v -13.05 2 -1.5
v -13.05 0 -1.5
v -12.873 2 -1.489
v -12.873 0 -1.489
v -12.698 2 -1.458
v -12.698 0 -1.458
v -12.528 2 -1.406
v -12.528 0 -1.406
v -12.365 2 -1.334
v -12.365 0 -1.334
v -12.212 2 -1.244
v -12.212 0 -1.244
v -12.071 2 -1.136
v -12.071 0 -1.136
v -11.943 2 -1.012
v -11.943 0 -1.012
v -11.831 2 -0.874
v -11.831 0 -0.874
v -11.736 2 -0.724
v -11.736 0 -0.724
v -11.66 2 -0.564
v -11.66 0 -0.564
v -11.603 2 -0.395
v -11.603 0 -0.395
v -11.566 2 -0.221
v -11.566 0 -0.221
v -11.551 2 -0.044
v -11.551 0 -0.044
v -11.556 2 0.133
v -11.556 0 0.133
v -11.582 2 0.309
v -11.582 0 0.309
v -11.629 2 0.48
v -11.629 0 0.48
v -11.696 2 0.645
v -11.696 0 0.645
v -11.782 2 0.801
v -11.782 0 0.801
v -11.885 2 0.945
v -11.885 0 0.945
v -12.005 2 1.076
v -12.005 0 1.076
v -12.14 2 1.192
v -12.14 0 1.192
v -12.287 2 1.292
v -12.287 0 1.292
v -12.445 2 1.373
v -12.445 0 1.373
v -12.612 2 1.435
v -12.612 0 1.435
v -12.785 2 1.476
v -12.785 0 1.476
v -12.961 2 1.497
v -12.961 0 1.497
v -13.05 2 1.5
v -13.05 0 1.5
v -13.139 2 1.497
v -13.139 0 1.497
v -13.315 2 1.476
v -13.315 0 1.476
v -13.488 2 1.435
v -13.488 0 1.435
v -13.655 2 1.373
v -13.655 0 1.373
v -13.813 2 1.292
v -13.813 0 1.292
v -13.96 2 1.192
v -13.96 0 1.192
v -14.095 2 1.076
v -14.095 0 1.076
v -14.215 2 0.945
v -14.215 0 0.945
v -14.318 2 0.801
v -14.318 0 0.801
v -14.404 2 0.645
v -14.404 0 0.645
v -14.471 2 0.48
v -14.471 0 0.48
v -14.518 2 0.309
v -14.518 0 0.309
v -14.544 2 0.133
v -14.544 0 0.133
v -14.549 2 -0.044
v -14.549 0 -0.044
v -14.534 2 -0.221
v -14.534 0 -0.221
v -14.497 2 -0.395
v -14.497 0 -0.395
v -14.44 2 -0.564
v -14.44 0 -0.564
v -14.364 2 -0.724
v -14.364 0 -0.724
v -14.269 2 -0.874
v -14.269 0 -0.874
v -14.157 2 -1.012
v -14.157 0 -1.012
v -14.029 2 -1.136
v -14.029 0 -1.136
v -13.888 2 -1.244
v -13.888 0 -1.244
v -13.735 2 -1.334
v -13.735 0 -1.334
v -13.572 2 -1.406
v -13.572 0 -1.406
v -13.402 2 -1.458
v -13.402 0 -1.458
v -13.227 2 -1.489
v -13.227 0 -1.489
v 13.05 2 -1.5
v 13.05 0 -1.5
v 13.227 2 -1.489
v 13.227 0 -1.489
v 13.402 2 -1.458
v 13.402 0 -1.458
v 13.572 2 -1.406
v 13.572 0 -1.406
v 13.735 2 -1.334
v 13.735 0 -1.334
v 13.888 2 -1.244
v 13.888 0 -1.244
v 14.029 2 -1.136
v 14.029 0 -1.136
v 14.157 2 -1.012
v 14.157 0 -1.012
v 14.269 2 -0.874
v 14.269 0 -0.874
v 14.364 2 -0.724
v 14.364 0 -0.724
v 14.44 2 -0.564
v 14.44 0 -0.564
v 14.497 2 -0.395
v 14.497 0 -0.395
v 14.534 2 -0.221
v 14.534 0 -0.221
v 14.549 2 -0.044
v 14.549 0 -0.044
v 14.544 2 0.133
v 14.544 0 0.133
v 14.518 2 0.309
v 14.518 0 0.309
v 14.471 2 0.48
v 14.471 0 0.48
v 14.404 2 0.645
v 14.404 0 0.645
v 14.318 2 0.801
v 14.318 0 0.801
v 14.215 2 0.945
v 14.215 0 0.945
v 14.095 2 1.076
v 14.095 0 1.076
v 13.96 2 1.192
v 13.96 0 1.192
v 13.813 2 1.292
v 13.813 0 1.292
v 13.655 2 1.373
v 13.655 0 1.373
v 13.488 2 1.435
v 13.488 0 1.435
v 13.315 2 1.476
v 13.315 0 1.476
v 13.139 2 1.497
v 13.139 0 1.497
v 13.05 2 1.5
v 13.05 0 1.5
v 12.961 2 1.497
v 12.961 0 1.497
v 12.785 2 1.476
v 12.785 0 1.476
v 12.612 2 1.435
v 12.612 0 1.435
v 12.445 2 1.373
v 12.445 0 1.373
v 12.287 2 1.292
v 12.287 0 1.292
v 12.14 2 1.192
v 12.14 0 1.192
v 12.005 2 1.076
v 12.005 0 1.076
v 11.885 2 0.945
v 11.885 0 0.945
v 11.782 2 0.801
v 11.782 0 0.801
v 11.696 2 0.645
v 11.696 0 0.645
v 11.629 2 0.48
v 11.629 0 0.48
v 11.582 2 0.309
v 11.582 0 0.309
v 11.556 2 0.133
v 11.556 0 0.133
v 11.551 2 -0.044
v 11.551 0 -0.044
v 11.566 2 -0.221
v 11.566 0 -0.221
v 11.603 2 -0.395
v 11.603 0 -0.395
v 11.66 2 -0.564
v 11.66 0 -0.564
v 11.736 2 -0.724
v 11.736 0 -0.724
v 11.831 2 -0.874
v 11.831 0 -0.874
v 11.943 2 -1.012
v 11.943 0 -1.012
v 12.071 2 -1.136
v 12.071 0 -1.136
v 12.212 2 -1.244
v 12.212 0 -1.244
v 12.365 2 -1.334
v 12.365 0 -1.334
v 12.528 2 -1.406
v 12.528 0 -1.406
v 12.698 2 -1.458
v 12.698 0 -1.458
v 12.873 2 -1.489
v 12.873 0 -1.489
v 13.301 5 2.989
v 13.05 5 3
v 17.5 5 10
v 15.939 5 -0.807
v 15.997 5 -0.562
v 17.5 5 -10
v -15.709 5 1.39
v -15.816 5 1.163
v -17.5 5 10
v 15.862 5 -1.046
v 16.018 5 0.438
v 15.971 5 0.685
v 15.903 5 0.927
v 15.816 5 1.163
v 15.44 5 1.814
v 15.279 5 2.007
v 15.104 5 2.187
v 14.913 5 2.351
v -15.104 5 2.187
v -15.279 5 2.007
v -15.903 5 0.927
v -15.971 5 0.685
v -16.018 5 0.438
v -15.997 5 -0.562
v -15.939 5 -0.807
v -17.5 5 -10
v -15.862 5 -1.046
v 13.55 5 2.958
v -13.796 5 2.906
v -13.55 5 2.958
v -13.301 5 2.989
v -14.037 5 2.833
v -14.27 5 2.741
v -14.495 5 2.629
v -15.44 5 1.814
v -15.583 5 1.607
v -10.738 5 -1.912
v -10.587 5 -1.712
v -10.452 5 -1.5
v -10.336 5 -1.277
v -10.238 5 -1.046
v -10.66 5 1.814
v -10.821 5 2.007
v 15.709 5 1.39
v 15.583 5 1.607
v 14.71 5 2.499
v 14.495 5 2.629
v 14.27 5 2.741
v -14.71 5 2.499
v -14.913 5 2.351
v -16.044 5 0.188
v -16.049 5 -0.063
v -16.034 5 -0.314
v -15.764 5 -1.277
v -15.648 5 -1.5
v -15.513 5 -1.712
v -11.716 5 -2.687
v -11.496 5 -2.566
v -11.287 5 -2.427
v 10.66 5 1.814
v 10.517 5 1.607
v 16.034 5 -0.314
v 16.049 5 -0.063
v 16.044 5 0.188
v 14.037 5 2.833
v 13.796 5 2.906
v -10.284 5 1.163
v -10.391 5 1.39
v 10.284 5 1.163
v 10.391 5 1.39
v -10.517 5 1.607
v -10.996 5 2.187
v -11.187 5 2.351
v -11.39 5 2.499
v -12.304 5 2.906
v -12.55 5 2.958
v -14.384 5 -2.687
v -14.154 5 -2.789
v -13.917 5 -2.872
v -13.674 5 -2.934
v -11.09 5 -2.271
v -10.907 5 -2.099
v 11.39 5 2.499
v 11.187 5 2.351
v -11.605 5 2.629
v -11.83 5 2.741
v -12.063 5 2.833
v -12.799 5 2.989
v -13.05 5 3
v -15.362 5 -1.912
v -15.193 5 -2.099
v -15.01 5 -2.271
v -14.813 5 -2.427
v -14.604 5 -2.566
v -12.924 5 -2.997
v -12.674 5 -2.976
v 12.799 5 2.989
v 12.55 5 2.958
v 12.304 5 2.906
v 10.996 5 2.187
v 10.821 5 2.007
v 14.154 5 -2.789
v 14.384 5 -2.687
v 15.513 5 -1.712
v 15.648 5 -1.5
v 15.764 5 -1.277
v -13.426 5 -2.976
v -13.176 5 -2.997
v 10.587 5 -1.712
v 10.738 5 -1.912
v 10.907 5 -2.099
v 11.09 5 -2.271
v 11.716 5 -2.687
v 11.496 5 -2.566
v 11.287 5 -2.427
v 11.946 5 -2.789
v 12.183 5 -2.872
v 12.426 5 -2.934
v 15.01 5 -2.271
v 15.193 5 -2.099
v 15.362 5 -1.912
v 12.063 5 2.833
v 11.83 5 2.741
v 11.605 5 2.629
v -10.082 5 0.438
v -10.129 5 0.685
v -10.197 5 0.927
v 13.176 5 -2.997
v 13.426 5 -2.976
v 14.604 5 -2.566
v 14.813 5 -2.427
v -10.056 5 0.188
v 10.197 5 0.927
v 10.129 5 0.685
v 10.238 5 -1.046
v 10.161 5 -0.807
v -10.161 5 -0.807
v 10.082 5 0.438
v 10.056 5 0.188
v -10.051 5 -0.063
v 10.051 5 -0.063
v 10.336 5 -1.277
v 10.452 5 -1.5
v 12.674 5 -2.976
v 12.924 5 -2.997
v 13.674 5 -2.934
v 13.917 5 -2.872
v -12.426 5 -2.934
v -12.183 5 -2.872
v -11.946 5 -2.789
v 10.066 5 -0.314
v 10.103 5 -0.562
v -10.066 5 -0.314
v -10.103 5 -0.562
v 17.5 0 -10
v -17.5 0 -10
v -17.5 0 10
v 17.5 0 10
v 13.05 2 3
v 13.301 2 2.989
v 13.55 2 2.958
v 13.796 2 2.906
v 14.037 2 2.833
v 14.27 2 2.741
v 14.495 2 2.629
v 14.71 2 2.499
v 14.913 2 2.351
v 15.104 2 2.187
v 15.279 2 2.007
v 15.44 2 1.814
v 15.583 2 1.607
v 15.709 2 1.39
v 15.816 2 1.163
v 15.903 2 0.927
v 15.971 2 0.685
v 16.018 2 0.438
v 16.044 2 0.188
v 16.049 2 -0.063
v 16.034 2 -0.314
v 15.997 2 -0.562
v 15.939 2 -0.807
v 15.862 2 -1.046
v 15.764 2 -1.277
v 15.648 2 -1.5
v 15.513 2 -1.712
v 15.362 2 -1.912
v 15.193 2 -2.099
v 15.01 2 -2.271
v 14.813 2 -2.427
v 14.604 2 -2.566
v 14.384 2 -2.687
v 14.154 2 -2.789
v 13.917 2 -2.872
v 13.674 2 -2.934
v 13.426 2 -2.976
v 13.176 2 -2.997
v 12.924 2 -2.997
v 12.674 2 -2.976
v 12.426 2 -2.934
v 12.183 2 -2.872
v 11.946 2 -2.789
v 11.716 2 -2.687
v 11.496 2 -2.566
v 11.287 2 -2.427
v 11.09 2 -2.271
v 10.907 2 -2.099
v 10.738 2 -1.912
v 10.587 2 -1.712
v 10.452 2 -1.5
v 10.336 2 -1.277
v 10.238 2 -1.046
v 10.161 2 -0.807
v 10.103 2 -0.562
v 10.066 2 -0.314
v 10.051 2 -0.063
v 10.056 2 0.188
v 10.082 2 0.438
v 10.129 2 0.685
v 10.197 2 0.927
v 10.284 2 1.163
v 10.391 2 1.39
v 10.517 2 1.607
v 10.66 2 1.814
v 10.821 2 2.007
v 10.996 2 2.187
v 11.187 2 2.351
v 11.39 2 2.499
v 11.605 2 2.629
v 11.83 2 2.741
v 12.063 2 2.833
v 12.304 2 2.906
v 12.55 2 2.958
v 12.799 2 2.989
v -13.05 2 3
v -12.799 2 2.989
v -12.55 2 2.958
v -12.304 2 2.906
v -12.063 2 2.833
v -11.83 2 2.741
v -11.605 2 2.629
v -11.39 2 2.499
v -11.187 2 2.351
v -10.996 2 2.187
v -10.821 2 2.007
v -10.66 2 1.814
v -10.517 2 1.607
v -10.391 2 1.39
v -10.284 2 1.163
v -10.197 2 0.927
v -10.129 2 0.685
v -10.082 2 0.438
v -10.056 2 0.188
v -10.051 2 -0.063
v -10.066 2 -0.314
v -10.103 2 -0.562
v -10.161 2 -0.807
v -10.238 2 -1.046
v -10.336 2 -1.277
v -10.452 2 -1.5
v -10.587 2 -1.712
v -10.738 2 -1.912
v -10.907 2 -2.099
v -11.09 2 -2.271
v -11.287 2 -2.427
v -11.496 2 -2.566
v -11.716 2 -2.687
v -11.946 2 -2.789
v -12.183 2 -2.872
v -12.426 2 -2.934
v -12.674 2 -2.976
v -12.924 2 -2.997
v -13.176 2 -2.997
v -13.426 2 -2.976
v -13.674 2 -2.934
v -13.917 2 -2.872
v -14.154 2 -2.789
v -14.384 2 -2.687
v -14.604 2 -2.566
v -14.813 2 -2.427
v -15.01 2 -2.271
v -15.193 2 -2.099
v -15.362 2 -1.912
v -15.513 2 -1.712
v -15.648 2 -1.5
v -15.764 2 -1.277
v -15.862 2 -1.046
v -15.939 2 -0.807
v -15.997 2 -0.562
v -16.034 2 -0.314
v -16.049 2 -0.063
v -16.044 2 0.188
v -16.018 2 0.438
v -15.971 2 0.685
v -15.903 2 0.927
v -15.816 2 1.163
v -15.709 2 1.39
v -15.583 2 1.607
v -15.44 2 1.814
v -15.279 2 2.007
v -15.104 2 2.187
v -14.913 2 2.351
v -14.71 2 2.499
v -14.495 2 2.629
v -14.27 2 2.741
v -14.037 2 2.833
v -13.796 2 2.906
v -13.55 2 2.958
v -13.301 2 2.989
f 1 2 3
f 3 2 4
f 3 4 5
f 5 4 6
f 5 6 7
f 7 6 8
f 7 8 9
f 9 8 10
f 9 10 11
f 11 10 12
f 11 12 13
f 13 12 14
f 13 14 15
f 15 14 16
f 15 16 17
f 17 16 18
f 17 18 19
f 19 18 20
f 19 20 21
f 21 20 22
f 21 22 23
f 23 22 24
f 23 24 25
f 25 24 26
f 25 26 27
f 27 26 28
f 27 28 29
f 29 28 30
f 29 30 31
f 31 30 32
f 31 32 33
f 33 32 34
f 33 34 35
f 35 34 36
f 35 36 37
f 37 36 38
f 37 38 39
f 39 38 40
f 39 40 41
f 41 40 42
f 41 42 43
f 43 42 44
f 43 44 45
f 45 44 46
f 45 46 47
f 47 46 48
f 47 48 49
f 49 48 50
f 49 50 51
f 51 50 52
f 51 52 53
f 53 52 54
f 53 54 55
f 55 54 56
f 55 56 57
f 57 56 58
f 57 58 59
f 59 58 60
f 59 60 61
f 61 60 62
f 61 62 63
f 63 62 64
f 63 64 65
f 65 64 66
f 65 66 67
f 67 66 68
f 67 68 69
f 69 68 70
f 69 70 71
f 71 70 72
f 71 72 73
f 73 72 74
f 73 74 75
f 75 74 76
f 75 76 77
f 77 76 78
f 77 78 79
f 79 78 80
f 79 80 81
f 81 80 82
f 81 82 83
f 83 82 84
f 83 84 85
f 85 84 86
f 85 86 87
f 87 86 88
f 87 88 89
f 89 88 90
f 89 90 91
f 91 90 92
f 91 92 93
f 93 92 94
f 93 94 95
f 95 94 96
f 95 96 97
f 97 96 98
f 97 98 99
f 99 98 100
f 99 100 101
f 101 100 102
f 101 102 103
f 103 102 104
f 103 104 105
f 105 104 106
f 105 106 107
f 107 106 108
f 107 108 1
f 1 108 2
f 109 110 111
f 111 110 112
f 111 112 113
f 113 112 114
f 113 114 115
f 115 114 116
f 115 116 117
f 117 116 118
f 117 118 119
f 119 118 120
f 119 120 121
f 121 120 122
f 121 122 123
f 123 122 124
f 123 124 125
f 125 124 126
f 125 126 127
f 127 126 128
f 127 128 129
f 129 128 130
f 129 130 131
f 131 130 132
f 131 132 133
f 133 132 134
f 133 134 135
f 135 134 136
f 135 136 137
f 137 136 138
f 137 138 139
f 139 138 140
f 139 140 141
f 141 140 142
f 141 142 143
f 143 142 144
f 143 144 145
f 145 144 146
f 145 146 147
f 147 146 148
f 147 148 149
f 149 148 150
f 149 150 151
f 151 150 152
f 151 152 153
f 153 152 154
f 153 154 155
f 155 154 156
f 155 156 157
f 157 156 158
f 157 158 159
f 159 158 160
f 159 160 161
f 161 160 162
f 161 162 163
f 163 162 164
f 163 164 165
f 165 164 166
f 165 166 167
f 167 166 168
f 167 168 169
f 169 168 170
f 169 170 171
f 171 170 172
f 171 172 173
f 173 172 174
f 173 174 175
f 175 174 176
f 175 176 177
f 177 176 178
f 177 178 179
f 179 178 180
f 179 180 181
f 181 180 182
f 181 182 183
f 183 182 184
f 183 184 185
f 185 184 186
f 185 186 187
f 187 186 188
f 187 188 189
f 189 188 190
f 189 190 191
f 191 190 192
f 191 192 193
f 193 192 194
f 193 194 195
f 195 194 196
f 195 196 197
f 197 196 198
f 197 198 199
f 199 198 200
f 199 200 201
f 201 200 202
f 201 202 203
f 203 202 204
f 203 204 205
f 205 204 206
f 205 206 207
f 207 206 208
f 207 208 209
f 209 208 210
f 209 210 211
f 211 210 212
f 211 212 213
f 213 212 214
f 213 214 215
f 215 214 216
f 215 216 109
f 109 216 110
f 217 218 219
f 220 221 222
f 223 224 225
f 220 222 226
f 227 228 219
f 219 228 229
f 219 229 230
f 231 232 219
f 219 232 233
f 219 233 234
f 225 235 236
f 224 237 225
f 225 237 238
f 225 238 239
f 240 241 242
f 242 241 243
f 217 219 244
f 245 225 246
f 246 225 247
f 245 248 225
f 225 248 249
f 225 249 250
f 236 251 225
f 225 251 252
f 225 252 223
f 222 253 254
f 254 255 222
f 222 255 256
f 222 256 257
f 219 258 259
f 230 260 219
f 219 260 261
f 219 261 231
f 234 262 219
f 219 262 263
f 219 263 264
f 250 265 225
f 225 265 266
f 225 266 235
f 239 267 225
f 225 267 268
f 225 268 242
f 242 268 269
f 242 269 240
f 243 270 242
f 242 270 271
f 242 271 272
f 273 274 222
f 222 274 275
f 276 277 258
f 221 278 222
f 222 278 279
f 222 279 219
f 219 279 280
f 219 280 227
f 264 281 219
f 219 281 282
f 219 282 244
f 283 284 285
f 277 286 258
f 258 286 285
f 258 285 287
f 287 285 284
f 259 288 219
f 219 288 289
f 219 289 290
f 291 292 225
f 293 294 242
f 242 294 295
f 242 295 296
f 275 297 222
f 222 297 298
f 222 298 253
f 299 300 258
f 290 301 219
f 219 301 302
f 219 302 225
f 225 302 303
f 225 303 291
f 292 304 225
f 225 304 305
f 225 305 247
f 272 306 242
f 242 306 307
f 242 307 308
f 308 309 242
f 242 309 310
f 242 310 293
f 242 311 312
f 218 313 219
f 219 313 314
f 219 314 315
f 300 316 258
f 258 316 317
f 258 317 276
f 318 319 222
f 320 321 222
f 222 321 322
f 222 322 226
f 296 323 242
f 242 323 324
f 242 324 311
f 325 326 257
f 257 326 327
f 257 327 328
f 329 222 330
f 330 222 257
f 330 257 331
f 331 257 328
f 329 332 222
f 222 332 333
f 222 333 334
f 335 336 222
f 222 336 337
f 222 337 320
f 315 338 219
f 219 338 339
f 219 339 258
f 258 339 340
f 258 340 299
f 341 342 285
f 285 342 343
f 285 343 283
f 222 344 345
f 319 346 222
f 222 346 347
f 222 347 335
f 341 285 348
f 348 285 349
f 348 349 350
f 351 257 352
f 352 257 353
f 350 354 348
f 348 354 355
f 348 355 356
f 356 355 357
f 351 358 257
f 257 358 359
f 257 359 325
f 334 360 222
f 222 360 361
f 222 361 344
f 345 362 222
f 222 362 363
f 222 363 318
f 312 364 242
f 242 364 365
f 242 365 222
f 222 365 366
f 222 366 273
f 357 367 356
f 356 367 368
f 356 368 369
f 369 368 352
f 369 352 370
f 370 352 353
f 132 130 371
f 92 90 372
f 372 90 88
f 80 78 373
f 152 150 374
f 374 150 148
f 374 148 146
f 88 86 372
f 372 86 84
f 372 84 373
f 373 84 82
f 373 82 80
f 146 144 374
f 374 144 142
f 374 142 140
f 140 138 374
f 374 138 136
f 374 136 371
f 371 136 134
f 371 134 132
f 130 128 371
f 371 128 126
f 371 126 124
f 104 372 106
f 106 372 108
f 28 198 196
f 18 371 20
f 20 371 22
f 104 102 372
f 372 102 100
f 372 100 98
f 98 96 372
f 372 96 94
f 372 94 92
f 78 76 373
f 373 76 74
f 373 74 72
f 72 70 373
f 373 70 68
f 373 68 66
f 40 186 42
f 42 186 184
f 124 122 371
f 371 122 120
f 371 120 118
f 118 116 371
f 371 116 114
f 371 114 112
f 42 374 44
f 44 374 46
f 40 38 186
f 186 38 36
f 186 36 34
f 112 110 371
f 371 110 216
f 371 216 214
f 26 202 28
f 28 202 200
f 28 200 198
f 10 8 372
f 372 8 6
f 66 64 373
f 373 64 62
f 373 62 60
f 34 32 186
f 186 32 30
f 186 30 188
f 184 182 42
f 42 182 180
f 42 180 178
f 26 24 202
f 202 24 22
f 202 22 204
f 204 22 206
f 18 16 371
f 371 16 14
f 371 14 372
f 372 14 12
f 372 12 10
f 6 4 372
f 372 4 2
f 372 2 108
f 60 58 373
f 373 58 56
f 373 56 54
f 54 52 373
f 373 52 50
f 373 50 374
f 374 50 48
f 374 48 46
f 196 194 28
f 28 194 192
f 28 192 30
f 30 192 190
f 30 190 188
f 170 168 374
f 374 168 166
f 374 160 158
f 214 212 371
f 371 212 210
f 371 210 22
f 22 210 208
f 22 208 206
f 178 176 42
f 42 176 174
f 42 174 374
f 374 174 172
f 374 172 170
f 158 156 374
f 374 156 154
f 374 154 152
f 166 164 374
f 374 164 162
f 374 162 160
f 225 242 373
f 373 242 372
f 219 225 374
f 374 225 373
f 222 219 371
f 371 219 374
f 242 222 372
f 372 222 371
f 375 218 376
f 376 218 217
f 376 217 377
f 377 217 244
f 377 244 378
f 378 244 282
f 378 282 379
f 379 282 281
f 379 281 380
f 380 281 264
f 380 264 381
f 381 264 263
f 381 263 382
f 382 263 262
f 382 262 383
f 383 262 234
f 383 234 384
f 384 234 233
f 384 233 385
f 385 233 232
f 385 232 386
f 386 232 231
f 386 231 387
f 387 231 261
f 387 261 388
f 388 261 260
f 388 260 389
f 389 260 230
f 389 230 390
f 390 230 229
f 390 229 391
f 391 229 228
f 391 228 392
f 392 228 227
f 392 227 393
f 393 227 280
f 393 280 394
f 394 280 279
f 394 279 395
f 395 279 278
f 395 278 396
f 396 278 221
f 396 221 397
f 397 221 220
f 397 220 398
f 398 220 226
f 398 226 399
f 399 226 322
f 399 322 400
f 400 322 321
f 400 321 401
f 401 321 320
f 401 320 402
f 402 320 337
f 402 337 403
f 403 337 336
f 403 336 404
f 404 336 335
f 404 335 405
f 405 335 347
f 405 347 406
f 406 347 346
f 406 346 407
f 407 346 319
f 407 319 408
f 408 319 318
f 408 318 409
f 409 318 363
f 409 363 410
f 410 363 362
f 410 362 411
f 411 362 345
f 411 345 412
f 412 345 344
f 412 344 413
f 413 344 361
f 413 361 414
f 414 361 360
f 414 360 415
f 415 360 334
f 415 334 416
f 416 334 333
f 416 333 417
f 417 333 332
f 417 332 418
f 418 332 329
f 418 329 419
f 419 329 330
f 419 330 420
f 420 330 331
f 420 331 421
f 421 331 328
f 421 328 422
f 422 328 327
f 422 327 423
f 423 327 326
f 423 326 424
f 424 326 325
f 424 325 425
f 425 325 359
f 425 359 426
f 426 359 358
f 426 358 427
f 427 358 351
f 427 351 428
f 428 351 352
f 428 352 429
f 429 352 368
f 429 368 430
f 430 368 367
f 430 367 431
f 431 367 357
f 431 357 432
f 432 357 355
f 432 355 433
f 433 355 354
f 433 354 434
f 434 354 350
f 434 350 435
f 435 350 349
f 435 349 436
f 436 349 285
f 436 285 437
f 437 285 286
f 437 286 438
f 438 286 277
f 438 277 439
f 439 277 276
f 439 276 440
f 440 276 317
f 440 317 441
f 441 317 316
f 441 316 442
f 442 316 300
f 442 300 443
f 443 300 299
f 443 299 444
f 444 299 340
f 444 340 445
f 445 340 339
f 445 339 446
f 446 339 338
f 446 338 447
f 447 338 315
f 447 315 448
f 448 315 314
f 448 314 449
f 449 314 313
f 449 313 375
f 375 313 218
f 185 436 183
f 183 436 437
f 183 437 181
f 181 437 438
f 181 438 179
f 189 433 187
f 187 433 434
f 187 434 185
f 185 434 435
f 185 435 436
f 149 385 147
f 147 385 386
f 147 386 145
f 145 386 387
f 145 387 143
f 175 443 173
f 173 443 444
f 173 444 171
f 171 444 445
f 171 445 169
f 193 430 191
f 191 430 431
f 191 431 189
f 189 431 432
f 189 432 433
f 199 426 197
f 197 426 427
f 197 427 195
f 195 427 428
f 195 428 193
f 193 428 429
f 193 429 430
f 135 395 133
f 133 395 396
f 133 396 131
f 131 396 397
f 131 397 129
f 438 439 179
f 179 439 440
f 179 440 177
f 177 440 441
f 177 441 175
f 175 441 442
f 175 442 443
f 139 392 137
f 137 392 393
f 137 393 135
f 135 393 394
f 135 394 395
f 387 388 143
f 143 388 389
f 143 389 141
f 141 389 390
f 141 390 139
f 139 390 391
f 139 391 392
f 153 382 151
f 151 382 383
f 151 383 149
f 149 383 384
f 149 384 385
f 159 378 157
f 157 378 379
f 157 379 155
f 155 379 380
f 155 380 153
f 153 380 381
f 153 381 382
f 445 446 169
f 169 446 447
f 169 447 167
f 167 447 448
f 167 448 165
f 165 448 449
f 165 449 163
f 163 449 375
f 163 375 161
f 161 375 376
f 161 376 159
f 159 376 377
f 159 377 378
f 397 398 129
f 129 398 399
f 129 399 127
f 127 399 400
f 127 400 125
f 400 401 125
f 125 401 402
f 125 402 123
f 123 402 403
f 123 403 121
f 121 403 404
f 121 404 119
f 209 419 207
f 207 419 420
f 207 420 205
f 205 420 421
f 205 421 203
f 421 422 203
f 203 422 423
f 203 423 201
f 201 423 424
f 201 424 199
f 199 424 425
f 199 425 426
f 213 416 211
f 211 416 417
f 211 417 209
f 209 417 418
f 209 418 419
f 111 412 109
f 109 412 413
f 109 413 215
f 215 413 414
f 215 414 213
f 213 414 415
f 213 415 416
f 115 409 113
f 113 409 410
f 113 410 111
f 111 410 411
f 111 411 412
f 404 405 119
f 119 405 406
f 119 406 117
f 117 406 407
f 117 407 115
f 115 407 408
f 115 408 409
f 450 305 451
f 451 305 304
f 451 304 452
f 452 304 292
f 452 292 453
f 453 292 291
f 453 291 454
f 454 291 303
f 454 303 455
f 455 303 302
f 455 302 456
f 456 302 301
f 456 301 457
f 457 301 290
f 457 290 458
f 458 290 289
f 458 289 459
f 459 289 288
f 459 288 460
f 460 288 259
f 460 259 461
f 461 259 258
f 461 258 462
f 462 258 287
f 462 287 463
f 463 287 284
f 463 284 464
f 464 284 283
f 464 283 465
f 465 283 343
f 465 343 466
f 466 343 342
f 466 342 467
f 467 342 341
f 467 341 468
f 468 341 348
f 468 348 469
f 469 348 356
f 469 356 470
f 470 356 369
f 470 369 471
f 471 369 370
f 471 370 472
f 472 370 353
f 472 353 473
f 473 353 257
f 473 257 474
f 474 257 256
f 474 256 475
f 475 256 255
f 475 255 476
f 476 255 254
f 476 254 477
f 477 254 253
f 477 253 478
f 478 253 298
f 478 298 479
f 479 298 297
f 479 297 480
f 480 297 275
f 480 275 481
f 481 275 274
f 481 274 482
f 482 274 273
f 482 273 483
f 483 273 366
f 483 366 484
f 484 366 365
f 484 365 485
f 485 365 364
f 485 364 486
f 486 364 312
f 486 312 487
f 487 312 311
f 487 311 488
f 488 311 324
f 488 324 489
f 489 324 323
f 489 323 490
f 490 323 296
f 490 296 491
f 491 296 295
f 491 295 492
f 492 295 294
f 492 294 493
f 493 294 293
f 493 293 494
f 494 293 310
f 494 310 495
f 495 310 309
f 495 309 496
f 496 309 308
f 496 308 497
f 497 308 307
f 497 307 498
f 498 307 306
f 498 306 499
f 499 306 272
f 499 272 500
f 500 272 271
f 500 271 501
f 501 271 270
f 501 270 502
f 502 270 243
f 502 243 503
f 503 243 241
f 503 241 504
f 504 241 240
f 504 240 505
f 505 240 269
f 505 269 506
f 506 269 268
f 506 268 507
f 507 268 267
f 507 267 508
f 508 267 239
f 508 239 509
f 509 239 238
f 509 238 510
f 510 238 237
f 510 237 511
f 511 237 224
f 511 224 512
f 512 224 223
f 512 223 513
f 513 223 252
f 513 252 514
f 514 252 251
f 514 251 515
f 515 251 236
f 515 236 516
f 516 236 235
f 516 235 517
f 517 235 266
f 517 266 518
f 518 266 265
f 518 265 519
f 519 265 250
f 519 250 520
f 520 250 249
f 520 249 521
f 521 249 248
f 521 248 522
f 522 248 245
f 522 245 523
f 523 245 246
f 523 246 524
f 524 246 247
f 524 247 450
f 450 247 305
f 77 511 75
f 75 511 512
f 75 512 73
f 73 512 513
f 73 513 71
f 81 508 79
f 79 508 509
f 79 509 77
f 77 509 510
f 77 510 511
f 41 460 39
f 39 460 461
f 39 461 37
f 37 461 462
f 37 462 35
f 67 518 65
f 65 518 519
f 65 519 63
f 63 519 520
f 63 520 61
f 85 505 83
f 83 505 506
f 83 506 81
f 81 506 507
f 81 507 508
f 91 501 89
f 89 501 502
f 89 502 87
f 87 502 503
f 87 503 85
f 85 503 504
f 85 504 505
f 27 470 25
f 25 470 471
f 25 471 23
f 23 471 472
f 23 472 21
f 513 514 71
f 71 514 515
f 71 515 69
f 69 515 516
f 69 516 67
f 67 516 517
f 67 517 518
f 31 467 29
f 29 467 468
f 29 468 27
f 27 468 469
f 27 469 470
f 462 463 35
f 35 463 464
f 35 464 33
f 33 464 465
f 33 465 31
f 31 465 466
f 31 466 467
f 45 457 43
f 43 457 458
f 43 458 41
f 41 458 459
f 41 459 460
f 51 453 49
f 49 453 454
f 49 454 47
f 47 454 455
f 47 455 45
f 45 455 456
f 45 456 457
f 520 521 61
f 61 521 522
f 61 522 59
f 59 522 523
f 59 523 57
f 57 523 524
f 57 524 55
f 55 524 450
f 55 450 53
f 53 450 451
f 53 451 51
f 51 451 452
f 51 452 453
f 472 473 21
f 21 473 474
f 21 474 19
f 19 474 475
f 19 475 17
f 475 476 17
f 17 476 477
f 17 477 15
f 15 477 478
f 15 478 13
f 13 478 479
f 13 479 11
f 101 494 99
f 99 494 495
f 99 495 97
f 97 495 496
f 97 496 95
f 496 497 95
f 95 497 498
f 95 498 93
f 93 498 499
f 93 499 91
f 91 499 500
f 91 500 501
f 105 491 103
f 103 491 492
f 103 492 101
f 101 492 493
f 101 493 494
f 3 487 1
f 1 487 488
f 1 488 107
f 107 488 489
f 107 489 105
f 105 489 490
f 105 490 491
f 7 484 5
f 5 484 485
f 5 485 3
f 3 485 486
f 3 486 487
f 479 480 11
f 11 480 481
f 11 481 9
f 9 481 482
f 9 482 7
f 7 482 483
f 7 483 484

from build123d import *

# Parameters (mm, degrees)
SKETCH2_W           = 35
SKETCH2_H           = 20
SKETCH2_R           = 1.5
BOSS_EXTRUDE1_DEPTH = 5
SKETCH3_R           = 3
CUT_EXTRUDE1_DEPTH  = 3


with BuildPart() as part:
    # Sketch2 → Boss-Extrude1 (new body)
    with BuildSketch(Plane(origin=(0, 0, 0), x_dir=(1, 0, 0), z_dir=(0, 1, 0))):
        Rectangle(SKETCH2_W, SKETCH2_H)
        with Locations(Location((-13.05, 0, 0), (0, 0, 270))):
            Circle(SKETCH2_R, mode=Mode.SUBTRACT)
        with Locations(Location((13.05, 0, 0), (0, 0, 270))):
            Circle(SKETCH2_R, mode=Mode.SUBTRACT)
    extrude(amount=BOSS_EXTRUDE1_DEPTH)

    # Sketch3 → Cut-Extrude1 (cut)
    with BuildSketch(Plane(origin=(0, 5, 0), x_dir=(1, 0, 0), z_dir=(0, 1, 0))):
        with Locations(Location((-13.05, 0, 0), (0, 0, 270))):
            Circle(SKETCH3_R)
        with Locations(Location((13.05, 0, 0), (0, 0, 270))):
            Circle(SKETCH3_R)
    extrude(amount=-CUT_EXTRUDE1_DEPTH, mode=Mode.SUBTRACT)


solid = part.part
